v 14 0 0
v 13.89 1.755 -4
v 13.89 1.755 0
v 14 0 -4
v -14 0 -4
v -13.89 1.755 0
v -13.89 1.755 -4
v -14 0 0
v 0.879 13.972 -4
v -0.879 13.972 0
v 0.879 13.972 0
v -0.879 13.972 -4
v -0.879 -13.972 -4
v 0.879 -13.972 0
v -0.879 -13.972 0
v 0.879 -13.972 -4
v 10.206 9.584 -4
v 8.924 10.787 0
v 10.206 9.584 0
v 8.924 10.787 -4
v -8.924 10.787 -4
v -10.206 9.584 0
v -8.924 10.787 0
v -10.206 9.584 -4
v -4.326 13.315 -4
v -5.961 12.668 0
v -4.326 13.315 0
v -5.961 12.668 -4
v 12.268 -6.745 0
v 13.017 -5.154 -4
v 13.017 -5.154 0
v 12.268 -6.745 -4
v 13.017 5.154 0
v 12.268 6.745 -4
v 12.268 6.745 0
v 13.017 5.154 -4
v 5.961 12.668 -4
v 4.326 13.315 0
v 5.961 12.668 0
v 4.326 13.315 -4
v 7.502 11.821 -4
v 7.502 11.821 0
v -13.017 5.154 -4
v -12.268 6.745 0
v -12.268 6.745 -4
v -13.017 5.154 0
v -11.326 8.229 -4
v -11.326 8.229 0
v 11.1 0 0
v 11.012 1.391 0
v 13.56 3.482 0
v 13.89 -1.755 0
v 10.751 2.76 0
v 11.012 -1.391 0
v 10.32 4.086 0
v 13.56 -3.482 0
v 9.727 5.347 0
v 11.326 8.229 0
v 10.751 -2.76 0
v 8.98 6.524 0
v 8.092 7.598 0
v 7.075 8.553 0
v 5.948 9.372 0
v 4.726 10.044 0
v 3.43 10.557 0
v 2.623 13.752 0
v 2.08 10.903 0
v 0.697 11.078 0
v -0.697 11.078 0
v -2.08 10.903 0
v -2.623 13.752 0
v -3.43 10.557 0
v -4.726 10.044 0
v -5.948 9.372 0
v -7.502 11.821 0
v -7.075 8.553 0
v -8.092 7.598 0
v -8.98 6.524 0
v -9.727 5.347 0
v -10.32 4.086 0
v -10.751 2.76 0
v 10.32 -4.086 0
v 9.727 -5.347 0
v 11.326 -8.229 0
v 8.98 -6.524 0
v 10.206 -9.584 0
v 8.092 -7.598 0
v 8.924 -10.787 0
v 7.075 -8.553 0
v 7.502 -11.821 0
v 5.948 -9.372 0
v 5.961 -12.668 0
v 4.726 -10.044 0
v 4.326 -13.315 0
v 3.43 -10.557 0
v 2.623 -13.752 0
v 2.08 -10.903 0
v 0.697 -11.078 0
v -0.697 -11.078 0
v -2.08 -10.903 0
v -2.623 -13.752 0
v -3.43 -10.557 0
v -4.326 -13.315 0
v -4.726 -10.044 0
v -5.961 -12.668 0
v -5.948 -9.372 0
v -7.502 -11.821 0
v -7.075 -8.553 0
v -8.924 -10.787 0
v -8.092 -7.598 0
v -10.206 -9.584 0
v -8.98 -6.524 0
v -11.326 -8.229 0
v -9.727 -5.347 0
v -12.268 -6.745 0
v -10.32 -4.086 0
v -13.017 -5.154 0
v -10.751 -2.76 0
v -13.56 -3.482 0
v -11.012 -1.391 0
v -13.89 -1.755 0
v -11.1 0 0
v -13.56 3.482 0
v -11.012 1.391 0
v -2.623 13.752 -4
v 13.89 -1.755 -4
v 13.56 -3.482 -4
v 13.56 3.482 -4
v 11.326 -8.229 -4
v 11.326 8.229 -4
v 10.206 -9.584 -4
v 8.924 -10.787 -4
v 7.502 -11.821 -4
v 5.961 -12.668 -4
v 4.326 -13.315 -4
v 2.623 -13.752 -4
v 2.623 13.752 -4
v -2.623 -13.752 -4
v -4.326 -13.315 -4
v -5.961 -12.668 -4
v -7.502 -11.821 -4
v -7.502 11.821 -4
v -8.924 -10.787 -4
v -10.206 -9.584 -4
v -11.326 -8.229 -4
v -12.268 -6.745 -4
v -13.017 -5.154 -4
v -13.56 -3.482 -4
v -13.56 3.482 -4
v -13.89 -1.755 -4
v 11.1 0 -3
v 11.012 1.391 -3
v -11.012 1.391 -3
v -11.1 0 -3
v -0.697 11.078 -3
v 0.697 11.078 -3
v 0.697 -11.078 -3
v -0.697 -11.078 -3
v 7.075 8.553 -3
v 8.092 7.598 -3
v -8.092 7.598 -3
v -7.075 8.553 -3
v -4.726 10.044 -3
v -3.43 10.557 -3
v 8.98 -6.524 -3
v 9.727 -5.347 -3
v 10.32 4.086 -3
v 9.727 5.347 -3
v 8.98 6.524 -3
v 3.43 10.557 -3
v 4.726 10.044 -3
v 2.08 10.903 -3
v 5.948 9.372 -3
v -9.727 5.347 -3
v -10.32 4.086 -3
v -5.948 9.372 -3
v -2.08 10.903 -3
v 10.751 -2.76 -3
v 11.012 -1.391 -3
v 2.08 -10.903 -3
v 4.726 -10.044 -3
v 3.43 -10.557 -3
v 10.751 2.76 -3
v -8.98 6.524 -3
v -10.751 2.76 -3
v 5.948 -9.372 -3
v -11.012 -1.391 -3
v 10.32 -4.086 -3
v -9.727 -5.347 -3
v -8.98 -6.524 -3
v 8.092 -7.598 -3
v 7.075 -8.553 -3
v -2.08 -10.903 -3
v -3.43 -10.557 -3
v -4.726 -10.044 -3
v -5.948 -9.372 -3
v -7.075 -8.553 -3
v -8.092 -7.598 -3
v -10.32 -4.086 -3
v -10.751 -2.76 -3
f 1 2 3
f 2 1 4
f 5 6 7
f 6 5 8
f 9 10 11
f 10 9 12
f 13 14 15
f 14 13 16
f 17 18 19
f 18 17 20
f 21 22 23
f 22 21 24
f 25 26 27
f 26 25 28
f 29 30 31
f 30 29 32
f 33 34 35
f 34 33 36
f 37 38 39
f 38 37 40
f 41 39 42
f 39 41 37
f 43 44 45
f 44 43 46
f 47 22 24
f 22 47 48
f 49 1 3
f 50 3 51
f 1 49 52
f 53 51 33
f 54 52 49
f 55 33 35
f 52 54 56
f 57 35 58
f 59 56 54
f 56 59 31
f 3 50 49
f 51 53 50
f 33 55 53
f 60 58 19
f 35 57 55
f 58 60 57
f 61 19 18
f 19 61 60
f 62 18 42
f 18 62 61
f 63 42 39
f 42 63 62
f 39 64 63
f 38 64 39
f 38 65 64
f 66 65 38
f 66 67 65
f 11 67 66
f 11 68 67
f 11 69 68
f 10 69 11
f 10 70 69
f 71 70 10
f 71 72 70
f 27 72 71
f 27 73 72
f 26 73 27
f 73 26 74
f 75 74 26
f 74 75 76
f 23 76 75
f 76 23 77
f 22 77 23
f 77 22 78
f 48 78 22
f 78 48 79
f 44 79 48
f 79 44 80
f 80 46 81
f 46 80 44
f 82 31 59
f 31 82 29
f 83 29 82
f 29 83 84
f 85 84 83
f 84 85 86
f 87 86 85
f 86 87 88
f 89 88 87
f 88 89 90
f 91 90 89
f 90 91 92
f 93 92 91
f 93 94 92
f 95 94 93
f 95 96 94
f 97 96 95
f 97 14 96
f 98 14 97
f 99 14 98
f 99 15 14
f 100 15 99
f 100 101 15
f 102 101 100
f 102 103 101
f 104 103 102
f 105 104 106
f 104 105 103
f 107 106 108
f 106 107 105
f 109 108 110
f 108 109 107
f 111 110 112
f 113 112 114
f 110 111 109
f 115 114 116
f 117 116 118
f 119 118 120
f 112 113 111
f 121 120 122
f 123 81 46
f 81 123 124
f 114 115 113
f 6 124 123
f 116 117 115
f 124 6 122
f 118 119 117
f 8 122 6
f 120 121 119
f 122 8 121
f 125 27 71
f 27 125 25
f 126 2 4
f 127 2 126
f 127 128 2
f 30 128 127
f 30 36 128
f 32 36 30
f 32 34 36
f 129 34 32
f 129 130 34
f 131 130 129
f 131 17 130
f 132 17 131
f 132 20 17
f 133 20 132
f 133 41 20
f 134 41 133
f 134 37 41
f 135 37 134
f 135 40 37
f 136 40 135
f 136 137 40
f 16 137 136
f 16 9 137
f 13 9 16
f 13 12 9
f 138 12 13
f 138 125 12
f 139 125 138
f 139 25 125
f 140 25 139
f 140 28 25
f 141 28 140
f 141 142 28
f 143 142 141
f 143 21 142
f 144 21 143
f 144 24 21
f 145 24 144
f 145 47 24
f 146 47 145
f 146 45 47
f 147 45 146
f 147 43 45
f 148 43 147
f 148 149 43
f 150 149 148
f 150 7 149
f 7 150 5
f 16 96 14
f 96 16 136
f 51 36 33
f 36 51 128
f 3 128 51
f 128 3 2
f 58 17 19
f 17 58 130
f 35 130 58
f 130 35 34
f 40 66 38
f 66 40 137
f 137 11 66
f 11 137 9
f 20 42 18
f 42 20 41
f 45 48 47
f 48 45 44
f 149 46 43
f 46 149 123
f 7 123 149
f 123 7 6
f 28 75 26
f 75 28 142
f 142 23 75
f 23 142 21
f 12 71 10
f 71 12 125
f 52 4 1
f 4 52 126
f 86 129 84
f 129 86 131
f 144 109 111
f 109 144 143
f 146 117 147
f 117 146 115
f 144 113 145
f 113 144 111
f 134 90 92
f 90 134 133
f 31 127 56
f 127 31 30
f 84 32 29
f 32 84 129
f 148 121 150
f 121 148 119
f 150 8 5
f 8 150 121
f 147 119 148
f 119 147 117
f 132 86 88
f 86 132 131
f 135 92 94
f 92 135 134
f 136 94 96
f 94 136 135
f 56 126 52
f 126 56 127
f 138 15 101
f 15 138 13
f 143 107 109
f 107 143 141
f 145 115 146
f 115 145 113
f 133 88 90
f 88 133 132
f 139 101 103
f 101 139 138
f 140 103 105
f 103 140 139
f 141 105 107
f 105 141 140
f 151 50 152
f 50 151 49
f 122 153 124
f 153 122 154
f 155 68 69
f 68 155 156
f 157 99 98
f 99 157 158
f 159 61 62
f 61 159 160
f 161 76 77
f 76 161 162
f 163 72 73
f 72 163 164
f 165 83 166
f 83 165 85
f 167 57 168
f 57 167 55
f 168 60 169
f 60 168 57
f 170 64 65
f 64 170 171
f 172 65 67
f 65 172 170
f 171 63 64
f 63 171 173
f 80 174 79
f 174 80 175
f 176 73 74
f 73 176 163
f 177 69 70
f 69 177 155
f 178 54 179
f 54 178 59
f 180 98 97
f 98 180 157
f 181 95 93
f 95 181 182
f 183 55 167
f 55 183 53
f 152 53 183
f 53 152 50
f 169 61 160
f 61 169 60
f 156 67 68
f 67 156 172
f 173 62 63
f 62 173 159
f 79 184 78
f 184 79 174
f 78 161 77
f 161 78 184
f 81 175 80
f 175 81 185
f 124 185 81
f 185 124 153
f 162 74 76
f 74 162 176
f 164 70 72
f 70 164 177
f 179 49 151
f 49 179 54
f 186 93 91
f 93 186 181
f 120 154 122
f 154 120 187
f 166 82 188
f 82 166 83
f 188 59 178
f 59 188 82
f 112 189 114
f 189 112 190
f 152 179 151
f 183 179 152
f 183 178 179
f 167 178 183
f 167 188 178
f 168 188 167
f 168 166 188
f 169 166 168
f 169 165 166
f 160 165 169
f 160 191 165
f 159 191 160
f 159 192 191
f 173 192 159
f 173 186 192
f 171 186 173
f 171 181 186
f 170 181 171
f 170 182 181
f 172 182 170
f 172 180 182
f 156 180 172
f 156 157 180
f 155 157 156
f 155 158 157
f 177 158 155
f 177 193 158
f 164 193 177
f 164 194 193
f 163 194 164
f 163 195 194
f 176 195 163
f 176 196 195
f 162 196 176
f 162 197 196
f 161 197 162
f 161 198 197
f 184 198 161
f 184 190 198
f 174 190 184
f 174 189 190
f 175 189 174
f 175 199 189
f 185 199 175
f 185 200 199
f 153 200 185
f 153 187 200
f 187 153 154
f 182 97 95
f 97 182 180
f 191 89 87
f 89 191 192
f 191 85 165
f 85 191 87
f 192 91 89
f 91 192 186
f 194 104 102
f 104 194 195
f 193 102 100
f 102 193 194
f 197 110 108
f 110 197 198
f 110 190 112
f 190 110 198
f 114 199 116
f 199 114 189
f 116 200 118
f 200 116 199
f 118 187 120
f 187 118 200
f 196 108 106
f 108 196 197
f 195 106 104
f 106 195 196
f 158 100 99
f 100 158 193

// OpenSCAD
$fn = 50;


difference() {
	union() {
		translate(v = [0, 0, -4.0000000000]) {
			cylinder(h = 4, r = 14.0000000000);
		}
	}
	union() {
		#translate(v = [0, 0, -3.0000000000]) {
			cylinder(h = 3, r = 11.1000000000);
		}
	}
}
